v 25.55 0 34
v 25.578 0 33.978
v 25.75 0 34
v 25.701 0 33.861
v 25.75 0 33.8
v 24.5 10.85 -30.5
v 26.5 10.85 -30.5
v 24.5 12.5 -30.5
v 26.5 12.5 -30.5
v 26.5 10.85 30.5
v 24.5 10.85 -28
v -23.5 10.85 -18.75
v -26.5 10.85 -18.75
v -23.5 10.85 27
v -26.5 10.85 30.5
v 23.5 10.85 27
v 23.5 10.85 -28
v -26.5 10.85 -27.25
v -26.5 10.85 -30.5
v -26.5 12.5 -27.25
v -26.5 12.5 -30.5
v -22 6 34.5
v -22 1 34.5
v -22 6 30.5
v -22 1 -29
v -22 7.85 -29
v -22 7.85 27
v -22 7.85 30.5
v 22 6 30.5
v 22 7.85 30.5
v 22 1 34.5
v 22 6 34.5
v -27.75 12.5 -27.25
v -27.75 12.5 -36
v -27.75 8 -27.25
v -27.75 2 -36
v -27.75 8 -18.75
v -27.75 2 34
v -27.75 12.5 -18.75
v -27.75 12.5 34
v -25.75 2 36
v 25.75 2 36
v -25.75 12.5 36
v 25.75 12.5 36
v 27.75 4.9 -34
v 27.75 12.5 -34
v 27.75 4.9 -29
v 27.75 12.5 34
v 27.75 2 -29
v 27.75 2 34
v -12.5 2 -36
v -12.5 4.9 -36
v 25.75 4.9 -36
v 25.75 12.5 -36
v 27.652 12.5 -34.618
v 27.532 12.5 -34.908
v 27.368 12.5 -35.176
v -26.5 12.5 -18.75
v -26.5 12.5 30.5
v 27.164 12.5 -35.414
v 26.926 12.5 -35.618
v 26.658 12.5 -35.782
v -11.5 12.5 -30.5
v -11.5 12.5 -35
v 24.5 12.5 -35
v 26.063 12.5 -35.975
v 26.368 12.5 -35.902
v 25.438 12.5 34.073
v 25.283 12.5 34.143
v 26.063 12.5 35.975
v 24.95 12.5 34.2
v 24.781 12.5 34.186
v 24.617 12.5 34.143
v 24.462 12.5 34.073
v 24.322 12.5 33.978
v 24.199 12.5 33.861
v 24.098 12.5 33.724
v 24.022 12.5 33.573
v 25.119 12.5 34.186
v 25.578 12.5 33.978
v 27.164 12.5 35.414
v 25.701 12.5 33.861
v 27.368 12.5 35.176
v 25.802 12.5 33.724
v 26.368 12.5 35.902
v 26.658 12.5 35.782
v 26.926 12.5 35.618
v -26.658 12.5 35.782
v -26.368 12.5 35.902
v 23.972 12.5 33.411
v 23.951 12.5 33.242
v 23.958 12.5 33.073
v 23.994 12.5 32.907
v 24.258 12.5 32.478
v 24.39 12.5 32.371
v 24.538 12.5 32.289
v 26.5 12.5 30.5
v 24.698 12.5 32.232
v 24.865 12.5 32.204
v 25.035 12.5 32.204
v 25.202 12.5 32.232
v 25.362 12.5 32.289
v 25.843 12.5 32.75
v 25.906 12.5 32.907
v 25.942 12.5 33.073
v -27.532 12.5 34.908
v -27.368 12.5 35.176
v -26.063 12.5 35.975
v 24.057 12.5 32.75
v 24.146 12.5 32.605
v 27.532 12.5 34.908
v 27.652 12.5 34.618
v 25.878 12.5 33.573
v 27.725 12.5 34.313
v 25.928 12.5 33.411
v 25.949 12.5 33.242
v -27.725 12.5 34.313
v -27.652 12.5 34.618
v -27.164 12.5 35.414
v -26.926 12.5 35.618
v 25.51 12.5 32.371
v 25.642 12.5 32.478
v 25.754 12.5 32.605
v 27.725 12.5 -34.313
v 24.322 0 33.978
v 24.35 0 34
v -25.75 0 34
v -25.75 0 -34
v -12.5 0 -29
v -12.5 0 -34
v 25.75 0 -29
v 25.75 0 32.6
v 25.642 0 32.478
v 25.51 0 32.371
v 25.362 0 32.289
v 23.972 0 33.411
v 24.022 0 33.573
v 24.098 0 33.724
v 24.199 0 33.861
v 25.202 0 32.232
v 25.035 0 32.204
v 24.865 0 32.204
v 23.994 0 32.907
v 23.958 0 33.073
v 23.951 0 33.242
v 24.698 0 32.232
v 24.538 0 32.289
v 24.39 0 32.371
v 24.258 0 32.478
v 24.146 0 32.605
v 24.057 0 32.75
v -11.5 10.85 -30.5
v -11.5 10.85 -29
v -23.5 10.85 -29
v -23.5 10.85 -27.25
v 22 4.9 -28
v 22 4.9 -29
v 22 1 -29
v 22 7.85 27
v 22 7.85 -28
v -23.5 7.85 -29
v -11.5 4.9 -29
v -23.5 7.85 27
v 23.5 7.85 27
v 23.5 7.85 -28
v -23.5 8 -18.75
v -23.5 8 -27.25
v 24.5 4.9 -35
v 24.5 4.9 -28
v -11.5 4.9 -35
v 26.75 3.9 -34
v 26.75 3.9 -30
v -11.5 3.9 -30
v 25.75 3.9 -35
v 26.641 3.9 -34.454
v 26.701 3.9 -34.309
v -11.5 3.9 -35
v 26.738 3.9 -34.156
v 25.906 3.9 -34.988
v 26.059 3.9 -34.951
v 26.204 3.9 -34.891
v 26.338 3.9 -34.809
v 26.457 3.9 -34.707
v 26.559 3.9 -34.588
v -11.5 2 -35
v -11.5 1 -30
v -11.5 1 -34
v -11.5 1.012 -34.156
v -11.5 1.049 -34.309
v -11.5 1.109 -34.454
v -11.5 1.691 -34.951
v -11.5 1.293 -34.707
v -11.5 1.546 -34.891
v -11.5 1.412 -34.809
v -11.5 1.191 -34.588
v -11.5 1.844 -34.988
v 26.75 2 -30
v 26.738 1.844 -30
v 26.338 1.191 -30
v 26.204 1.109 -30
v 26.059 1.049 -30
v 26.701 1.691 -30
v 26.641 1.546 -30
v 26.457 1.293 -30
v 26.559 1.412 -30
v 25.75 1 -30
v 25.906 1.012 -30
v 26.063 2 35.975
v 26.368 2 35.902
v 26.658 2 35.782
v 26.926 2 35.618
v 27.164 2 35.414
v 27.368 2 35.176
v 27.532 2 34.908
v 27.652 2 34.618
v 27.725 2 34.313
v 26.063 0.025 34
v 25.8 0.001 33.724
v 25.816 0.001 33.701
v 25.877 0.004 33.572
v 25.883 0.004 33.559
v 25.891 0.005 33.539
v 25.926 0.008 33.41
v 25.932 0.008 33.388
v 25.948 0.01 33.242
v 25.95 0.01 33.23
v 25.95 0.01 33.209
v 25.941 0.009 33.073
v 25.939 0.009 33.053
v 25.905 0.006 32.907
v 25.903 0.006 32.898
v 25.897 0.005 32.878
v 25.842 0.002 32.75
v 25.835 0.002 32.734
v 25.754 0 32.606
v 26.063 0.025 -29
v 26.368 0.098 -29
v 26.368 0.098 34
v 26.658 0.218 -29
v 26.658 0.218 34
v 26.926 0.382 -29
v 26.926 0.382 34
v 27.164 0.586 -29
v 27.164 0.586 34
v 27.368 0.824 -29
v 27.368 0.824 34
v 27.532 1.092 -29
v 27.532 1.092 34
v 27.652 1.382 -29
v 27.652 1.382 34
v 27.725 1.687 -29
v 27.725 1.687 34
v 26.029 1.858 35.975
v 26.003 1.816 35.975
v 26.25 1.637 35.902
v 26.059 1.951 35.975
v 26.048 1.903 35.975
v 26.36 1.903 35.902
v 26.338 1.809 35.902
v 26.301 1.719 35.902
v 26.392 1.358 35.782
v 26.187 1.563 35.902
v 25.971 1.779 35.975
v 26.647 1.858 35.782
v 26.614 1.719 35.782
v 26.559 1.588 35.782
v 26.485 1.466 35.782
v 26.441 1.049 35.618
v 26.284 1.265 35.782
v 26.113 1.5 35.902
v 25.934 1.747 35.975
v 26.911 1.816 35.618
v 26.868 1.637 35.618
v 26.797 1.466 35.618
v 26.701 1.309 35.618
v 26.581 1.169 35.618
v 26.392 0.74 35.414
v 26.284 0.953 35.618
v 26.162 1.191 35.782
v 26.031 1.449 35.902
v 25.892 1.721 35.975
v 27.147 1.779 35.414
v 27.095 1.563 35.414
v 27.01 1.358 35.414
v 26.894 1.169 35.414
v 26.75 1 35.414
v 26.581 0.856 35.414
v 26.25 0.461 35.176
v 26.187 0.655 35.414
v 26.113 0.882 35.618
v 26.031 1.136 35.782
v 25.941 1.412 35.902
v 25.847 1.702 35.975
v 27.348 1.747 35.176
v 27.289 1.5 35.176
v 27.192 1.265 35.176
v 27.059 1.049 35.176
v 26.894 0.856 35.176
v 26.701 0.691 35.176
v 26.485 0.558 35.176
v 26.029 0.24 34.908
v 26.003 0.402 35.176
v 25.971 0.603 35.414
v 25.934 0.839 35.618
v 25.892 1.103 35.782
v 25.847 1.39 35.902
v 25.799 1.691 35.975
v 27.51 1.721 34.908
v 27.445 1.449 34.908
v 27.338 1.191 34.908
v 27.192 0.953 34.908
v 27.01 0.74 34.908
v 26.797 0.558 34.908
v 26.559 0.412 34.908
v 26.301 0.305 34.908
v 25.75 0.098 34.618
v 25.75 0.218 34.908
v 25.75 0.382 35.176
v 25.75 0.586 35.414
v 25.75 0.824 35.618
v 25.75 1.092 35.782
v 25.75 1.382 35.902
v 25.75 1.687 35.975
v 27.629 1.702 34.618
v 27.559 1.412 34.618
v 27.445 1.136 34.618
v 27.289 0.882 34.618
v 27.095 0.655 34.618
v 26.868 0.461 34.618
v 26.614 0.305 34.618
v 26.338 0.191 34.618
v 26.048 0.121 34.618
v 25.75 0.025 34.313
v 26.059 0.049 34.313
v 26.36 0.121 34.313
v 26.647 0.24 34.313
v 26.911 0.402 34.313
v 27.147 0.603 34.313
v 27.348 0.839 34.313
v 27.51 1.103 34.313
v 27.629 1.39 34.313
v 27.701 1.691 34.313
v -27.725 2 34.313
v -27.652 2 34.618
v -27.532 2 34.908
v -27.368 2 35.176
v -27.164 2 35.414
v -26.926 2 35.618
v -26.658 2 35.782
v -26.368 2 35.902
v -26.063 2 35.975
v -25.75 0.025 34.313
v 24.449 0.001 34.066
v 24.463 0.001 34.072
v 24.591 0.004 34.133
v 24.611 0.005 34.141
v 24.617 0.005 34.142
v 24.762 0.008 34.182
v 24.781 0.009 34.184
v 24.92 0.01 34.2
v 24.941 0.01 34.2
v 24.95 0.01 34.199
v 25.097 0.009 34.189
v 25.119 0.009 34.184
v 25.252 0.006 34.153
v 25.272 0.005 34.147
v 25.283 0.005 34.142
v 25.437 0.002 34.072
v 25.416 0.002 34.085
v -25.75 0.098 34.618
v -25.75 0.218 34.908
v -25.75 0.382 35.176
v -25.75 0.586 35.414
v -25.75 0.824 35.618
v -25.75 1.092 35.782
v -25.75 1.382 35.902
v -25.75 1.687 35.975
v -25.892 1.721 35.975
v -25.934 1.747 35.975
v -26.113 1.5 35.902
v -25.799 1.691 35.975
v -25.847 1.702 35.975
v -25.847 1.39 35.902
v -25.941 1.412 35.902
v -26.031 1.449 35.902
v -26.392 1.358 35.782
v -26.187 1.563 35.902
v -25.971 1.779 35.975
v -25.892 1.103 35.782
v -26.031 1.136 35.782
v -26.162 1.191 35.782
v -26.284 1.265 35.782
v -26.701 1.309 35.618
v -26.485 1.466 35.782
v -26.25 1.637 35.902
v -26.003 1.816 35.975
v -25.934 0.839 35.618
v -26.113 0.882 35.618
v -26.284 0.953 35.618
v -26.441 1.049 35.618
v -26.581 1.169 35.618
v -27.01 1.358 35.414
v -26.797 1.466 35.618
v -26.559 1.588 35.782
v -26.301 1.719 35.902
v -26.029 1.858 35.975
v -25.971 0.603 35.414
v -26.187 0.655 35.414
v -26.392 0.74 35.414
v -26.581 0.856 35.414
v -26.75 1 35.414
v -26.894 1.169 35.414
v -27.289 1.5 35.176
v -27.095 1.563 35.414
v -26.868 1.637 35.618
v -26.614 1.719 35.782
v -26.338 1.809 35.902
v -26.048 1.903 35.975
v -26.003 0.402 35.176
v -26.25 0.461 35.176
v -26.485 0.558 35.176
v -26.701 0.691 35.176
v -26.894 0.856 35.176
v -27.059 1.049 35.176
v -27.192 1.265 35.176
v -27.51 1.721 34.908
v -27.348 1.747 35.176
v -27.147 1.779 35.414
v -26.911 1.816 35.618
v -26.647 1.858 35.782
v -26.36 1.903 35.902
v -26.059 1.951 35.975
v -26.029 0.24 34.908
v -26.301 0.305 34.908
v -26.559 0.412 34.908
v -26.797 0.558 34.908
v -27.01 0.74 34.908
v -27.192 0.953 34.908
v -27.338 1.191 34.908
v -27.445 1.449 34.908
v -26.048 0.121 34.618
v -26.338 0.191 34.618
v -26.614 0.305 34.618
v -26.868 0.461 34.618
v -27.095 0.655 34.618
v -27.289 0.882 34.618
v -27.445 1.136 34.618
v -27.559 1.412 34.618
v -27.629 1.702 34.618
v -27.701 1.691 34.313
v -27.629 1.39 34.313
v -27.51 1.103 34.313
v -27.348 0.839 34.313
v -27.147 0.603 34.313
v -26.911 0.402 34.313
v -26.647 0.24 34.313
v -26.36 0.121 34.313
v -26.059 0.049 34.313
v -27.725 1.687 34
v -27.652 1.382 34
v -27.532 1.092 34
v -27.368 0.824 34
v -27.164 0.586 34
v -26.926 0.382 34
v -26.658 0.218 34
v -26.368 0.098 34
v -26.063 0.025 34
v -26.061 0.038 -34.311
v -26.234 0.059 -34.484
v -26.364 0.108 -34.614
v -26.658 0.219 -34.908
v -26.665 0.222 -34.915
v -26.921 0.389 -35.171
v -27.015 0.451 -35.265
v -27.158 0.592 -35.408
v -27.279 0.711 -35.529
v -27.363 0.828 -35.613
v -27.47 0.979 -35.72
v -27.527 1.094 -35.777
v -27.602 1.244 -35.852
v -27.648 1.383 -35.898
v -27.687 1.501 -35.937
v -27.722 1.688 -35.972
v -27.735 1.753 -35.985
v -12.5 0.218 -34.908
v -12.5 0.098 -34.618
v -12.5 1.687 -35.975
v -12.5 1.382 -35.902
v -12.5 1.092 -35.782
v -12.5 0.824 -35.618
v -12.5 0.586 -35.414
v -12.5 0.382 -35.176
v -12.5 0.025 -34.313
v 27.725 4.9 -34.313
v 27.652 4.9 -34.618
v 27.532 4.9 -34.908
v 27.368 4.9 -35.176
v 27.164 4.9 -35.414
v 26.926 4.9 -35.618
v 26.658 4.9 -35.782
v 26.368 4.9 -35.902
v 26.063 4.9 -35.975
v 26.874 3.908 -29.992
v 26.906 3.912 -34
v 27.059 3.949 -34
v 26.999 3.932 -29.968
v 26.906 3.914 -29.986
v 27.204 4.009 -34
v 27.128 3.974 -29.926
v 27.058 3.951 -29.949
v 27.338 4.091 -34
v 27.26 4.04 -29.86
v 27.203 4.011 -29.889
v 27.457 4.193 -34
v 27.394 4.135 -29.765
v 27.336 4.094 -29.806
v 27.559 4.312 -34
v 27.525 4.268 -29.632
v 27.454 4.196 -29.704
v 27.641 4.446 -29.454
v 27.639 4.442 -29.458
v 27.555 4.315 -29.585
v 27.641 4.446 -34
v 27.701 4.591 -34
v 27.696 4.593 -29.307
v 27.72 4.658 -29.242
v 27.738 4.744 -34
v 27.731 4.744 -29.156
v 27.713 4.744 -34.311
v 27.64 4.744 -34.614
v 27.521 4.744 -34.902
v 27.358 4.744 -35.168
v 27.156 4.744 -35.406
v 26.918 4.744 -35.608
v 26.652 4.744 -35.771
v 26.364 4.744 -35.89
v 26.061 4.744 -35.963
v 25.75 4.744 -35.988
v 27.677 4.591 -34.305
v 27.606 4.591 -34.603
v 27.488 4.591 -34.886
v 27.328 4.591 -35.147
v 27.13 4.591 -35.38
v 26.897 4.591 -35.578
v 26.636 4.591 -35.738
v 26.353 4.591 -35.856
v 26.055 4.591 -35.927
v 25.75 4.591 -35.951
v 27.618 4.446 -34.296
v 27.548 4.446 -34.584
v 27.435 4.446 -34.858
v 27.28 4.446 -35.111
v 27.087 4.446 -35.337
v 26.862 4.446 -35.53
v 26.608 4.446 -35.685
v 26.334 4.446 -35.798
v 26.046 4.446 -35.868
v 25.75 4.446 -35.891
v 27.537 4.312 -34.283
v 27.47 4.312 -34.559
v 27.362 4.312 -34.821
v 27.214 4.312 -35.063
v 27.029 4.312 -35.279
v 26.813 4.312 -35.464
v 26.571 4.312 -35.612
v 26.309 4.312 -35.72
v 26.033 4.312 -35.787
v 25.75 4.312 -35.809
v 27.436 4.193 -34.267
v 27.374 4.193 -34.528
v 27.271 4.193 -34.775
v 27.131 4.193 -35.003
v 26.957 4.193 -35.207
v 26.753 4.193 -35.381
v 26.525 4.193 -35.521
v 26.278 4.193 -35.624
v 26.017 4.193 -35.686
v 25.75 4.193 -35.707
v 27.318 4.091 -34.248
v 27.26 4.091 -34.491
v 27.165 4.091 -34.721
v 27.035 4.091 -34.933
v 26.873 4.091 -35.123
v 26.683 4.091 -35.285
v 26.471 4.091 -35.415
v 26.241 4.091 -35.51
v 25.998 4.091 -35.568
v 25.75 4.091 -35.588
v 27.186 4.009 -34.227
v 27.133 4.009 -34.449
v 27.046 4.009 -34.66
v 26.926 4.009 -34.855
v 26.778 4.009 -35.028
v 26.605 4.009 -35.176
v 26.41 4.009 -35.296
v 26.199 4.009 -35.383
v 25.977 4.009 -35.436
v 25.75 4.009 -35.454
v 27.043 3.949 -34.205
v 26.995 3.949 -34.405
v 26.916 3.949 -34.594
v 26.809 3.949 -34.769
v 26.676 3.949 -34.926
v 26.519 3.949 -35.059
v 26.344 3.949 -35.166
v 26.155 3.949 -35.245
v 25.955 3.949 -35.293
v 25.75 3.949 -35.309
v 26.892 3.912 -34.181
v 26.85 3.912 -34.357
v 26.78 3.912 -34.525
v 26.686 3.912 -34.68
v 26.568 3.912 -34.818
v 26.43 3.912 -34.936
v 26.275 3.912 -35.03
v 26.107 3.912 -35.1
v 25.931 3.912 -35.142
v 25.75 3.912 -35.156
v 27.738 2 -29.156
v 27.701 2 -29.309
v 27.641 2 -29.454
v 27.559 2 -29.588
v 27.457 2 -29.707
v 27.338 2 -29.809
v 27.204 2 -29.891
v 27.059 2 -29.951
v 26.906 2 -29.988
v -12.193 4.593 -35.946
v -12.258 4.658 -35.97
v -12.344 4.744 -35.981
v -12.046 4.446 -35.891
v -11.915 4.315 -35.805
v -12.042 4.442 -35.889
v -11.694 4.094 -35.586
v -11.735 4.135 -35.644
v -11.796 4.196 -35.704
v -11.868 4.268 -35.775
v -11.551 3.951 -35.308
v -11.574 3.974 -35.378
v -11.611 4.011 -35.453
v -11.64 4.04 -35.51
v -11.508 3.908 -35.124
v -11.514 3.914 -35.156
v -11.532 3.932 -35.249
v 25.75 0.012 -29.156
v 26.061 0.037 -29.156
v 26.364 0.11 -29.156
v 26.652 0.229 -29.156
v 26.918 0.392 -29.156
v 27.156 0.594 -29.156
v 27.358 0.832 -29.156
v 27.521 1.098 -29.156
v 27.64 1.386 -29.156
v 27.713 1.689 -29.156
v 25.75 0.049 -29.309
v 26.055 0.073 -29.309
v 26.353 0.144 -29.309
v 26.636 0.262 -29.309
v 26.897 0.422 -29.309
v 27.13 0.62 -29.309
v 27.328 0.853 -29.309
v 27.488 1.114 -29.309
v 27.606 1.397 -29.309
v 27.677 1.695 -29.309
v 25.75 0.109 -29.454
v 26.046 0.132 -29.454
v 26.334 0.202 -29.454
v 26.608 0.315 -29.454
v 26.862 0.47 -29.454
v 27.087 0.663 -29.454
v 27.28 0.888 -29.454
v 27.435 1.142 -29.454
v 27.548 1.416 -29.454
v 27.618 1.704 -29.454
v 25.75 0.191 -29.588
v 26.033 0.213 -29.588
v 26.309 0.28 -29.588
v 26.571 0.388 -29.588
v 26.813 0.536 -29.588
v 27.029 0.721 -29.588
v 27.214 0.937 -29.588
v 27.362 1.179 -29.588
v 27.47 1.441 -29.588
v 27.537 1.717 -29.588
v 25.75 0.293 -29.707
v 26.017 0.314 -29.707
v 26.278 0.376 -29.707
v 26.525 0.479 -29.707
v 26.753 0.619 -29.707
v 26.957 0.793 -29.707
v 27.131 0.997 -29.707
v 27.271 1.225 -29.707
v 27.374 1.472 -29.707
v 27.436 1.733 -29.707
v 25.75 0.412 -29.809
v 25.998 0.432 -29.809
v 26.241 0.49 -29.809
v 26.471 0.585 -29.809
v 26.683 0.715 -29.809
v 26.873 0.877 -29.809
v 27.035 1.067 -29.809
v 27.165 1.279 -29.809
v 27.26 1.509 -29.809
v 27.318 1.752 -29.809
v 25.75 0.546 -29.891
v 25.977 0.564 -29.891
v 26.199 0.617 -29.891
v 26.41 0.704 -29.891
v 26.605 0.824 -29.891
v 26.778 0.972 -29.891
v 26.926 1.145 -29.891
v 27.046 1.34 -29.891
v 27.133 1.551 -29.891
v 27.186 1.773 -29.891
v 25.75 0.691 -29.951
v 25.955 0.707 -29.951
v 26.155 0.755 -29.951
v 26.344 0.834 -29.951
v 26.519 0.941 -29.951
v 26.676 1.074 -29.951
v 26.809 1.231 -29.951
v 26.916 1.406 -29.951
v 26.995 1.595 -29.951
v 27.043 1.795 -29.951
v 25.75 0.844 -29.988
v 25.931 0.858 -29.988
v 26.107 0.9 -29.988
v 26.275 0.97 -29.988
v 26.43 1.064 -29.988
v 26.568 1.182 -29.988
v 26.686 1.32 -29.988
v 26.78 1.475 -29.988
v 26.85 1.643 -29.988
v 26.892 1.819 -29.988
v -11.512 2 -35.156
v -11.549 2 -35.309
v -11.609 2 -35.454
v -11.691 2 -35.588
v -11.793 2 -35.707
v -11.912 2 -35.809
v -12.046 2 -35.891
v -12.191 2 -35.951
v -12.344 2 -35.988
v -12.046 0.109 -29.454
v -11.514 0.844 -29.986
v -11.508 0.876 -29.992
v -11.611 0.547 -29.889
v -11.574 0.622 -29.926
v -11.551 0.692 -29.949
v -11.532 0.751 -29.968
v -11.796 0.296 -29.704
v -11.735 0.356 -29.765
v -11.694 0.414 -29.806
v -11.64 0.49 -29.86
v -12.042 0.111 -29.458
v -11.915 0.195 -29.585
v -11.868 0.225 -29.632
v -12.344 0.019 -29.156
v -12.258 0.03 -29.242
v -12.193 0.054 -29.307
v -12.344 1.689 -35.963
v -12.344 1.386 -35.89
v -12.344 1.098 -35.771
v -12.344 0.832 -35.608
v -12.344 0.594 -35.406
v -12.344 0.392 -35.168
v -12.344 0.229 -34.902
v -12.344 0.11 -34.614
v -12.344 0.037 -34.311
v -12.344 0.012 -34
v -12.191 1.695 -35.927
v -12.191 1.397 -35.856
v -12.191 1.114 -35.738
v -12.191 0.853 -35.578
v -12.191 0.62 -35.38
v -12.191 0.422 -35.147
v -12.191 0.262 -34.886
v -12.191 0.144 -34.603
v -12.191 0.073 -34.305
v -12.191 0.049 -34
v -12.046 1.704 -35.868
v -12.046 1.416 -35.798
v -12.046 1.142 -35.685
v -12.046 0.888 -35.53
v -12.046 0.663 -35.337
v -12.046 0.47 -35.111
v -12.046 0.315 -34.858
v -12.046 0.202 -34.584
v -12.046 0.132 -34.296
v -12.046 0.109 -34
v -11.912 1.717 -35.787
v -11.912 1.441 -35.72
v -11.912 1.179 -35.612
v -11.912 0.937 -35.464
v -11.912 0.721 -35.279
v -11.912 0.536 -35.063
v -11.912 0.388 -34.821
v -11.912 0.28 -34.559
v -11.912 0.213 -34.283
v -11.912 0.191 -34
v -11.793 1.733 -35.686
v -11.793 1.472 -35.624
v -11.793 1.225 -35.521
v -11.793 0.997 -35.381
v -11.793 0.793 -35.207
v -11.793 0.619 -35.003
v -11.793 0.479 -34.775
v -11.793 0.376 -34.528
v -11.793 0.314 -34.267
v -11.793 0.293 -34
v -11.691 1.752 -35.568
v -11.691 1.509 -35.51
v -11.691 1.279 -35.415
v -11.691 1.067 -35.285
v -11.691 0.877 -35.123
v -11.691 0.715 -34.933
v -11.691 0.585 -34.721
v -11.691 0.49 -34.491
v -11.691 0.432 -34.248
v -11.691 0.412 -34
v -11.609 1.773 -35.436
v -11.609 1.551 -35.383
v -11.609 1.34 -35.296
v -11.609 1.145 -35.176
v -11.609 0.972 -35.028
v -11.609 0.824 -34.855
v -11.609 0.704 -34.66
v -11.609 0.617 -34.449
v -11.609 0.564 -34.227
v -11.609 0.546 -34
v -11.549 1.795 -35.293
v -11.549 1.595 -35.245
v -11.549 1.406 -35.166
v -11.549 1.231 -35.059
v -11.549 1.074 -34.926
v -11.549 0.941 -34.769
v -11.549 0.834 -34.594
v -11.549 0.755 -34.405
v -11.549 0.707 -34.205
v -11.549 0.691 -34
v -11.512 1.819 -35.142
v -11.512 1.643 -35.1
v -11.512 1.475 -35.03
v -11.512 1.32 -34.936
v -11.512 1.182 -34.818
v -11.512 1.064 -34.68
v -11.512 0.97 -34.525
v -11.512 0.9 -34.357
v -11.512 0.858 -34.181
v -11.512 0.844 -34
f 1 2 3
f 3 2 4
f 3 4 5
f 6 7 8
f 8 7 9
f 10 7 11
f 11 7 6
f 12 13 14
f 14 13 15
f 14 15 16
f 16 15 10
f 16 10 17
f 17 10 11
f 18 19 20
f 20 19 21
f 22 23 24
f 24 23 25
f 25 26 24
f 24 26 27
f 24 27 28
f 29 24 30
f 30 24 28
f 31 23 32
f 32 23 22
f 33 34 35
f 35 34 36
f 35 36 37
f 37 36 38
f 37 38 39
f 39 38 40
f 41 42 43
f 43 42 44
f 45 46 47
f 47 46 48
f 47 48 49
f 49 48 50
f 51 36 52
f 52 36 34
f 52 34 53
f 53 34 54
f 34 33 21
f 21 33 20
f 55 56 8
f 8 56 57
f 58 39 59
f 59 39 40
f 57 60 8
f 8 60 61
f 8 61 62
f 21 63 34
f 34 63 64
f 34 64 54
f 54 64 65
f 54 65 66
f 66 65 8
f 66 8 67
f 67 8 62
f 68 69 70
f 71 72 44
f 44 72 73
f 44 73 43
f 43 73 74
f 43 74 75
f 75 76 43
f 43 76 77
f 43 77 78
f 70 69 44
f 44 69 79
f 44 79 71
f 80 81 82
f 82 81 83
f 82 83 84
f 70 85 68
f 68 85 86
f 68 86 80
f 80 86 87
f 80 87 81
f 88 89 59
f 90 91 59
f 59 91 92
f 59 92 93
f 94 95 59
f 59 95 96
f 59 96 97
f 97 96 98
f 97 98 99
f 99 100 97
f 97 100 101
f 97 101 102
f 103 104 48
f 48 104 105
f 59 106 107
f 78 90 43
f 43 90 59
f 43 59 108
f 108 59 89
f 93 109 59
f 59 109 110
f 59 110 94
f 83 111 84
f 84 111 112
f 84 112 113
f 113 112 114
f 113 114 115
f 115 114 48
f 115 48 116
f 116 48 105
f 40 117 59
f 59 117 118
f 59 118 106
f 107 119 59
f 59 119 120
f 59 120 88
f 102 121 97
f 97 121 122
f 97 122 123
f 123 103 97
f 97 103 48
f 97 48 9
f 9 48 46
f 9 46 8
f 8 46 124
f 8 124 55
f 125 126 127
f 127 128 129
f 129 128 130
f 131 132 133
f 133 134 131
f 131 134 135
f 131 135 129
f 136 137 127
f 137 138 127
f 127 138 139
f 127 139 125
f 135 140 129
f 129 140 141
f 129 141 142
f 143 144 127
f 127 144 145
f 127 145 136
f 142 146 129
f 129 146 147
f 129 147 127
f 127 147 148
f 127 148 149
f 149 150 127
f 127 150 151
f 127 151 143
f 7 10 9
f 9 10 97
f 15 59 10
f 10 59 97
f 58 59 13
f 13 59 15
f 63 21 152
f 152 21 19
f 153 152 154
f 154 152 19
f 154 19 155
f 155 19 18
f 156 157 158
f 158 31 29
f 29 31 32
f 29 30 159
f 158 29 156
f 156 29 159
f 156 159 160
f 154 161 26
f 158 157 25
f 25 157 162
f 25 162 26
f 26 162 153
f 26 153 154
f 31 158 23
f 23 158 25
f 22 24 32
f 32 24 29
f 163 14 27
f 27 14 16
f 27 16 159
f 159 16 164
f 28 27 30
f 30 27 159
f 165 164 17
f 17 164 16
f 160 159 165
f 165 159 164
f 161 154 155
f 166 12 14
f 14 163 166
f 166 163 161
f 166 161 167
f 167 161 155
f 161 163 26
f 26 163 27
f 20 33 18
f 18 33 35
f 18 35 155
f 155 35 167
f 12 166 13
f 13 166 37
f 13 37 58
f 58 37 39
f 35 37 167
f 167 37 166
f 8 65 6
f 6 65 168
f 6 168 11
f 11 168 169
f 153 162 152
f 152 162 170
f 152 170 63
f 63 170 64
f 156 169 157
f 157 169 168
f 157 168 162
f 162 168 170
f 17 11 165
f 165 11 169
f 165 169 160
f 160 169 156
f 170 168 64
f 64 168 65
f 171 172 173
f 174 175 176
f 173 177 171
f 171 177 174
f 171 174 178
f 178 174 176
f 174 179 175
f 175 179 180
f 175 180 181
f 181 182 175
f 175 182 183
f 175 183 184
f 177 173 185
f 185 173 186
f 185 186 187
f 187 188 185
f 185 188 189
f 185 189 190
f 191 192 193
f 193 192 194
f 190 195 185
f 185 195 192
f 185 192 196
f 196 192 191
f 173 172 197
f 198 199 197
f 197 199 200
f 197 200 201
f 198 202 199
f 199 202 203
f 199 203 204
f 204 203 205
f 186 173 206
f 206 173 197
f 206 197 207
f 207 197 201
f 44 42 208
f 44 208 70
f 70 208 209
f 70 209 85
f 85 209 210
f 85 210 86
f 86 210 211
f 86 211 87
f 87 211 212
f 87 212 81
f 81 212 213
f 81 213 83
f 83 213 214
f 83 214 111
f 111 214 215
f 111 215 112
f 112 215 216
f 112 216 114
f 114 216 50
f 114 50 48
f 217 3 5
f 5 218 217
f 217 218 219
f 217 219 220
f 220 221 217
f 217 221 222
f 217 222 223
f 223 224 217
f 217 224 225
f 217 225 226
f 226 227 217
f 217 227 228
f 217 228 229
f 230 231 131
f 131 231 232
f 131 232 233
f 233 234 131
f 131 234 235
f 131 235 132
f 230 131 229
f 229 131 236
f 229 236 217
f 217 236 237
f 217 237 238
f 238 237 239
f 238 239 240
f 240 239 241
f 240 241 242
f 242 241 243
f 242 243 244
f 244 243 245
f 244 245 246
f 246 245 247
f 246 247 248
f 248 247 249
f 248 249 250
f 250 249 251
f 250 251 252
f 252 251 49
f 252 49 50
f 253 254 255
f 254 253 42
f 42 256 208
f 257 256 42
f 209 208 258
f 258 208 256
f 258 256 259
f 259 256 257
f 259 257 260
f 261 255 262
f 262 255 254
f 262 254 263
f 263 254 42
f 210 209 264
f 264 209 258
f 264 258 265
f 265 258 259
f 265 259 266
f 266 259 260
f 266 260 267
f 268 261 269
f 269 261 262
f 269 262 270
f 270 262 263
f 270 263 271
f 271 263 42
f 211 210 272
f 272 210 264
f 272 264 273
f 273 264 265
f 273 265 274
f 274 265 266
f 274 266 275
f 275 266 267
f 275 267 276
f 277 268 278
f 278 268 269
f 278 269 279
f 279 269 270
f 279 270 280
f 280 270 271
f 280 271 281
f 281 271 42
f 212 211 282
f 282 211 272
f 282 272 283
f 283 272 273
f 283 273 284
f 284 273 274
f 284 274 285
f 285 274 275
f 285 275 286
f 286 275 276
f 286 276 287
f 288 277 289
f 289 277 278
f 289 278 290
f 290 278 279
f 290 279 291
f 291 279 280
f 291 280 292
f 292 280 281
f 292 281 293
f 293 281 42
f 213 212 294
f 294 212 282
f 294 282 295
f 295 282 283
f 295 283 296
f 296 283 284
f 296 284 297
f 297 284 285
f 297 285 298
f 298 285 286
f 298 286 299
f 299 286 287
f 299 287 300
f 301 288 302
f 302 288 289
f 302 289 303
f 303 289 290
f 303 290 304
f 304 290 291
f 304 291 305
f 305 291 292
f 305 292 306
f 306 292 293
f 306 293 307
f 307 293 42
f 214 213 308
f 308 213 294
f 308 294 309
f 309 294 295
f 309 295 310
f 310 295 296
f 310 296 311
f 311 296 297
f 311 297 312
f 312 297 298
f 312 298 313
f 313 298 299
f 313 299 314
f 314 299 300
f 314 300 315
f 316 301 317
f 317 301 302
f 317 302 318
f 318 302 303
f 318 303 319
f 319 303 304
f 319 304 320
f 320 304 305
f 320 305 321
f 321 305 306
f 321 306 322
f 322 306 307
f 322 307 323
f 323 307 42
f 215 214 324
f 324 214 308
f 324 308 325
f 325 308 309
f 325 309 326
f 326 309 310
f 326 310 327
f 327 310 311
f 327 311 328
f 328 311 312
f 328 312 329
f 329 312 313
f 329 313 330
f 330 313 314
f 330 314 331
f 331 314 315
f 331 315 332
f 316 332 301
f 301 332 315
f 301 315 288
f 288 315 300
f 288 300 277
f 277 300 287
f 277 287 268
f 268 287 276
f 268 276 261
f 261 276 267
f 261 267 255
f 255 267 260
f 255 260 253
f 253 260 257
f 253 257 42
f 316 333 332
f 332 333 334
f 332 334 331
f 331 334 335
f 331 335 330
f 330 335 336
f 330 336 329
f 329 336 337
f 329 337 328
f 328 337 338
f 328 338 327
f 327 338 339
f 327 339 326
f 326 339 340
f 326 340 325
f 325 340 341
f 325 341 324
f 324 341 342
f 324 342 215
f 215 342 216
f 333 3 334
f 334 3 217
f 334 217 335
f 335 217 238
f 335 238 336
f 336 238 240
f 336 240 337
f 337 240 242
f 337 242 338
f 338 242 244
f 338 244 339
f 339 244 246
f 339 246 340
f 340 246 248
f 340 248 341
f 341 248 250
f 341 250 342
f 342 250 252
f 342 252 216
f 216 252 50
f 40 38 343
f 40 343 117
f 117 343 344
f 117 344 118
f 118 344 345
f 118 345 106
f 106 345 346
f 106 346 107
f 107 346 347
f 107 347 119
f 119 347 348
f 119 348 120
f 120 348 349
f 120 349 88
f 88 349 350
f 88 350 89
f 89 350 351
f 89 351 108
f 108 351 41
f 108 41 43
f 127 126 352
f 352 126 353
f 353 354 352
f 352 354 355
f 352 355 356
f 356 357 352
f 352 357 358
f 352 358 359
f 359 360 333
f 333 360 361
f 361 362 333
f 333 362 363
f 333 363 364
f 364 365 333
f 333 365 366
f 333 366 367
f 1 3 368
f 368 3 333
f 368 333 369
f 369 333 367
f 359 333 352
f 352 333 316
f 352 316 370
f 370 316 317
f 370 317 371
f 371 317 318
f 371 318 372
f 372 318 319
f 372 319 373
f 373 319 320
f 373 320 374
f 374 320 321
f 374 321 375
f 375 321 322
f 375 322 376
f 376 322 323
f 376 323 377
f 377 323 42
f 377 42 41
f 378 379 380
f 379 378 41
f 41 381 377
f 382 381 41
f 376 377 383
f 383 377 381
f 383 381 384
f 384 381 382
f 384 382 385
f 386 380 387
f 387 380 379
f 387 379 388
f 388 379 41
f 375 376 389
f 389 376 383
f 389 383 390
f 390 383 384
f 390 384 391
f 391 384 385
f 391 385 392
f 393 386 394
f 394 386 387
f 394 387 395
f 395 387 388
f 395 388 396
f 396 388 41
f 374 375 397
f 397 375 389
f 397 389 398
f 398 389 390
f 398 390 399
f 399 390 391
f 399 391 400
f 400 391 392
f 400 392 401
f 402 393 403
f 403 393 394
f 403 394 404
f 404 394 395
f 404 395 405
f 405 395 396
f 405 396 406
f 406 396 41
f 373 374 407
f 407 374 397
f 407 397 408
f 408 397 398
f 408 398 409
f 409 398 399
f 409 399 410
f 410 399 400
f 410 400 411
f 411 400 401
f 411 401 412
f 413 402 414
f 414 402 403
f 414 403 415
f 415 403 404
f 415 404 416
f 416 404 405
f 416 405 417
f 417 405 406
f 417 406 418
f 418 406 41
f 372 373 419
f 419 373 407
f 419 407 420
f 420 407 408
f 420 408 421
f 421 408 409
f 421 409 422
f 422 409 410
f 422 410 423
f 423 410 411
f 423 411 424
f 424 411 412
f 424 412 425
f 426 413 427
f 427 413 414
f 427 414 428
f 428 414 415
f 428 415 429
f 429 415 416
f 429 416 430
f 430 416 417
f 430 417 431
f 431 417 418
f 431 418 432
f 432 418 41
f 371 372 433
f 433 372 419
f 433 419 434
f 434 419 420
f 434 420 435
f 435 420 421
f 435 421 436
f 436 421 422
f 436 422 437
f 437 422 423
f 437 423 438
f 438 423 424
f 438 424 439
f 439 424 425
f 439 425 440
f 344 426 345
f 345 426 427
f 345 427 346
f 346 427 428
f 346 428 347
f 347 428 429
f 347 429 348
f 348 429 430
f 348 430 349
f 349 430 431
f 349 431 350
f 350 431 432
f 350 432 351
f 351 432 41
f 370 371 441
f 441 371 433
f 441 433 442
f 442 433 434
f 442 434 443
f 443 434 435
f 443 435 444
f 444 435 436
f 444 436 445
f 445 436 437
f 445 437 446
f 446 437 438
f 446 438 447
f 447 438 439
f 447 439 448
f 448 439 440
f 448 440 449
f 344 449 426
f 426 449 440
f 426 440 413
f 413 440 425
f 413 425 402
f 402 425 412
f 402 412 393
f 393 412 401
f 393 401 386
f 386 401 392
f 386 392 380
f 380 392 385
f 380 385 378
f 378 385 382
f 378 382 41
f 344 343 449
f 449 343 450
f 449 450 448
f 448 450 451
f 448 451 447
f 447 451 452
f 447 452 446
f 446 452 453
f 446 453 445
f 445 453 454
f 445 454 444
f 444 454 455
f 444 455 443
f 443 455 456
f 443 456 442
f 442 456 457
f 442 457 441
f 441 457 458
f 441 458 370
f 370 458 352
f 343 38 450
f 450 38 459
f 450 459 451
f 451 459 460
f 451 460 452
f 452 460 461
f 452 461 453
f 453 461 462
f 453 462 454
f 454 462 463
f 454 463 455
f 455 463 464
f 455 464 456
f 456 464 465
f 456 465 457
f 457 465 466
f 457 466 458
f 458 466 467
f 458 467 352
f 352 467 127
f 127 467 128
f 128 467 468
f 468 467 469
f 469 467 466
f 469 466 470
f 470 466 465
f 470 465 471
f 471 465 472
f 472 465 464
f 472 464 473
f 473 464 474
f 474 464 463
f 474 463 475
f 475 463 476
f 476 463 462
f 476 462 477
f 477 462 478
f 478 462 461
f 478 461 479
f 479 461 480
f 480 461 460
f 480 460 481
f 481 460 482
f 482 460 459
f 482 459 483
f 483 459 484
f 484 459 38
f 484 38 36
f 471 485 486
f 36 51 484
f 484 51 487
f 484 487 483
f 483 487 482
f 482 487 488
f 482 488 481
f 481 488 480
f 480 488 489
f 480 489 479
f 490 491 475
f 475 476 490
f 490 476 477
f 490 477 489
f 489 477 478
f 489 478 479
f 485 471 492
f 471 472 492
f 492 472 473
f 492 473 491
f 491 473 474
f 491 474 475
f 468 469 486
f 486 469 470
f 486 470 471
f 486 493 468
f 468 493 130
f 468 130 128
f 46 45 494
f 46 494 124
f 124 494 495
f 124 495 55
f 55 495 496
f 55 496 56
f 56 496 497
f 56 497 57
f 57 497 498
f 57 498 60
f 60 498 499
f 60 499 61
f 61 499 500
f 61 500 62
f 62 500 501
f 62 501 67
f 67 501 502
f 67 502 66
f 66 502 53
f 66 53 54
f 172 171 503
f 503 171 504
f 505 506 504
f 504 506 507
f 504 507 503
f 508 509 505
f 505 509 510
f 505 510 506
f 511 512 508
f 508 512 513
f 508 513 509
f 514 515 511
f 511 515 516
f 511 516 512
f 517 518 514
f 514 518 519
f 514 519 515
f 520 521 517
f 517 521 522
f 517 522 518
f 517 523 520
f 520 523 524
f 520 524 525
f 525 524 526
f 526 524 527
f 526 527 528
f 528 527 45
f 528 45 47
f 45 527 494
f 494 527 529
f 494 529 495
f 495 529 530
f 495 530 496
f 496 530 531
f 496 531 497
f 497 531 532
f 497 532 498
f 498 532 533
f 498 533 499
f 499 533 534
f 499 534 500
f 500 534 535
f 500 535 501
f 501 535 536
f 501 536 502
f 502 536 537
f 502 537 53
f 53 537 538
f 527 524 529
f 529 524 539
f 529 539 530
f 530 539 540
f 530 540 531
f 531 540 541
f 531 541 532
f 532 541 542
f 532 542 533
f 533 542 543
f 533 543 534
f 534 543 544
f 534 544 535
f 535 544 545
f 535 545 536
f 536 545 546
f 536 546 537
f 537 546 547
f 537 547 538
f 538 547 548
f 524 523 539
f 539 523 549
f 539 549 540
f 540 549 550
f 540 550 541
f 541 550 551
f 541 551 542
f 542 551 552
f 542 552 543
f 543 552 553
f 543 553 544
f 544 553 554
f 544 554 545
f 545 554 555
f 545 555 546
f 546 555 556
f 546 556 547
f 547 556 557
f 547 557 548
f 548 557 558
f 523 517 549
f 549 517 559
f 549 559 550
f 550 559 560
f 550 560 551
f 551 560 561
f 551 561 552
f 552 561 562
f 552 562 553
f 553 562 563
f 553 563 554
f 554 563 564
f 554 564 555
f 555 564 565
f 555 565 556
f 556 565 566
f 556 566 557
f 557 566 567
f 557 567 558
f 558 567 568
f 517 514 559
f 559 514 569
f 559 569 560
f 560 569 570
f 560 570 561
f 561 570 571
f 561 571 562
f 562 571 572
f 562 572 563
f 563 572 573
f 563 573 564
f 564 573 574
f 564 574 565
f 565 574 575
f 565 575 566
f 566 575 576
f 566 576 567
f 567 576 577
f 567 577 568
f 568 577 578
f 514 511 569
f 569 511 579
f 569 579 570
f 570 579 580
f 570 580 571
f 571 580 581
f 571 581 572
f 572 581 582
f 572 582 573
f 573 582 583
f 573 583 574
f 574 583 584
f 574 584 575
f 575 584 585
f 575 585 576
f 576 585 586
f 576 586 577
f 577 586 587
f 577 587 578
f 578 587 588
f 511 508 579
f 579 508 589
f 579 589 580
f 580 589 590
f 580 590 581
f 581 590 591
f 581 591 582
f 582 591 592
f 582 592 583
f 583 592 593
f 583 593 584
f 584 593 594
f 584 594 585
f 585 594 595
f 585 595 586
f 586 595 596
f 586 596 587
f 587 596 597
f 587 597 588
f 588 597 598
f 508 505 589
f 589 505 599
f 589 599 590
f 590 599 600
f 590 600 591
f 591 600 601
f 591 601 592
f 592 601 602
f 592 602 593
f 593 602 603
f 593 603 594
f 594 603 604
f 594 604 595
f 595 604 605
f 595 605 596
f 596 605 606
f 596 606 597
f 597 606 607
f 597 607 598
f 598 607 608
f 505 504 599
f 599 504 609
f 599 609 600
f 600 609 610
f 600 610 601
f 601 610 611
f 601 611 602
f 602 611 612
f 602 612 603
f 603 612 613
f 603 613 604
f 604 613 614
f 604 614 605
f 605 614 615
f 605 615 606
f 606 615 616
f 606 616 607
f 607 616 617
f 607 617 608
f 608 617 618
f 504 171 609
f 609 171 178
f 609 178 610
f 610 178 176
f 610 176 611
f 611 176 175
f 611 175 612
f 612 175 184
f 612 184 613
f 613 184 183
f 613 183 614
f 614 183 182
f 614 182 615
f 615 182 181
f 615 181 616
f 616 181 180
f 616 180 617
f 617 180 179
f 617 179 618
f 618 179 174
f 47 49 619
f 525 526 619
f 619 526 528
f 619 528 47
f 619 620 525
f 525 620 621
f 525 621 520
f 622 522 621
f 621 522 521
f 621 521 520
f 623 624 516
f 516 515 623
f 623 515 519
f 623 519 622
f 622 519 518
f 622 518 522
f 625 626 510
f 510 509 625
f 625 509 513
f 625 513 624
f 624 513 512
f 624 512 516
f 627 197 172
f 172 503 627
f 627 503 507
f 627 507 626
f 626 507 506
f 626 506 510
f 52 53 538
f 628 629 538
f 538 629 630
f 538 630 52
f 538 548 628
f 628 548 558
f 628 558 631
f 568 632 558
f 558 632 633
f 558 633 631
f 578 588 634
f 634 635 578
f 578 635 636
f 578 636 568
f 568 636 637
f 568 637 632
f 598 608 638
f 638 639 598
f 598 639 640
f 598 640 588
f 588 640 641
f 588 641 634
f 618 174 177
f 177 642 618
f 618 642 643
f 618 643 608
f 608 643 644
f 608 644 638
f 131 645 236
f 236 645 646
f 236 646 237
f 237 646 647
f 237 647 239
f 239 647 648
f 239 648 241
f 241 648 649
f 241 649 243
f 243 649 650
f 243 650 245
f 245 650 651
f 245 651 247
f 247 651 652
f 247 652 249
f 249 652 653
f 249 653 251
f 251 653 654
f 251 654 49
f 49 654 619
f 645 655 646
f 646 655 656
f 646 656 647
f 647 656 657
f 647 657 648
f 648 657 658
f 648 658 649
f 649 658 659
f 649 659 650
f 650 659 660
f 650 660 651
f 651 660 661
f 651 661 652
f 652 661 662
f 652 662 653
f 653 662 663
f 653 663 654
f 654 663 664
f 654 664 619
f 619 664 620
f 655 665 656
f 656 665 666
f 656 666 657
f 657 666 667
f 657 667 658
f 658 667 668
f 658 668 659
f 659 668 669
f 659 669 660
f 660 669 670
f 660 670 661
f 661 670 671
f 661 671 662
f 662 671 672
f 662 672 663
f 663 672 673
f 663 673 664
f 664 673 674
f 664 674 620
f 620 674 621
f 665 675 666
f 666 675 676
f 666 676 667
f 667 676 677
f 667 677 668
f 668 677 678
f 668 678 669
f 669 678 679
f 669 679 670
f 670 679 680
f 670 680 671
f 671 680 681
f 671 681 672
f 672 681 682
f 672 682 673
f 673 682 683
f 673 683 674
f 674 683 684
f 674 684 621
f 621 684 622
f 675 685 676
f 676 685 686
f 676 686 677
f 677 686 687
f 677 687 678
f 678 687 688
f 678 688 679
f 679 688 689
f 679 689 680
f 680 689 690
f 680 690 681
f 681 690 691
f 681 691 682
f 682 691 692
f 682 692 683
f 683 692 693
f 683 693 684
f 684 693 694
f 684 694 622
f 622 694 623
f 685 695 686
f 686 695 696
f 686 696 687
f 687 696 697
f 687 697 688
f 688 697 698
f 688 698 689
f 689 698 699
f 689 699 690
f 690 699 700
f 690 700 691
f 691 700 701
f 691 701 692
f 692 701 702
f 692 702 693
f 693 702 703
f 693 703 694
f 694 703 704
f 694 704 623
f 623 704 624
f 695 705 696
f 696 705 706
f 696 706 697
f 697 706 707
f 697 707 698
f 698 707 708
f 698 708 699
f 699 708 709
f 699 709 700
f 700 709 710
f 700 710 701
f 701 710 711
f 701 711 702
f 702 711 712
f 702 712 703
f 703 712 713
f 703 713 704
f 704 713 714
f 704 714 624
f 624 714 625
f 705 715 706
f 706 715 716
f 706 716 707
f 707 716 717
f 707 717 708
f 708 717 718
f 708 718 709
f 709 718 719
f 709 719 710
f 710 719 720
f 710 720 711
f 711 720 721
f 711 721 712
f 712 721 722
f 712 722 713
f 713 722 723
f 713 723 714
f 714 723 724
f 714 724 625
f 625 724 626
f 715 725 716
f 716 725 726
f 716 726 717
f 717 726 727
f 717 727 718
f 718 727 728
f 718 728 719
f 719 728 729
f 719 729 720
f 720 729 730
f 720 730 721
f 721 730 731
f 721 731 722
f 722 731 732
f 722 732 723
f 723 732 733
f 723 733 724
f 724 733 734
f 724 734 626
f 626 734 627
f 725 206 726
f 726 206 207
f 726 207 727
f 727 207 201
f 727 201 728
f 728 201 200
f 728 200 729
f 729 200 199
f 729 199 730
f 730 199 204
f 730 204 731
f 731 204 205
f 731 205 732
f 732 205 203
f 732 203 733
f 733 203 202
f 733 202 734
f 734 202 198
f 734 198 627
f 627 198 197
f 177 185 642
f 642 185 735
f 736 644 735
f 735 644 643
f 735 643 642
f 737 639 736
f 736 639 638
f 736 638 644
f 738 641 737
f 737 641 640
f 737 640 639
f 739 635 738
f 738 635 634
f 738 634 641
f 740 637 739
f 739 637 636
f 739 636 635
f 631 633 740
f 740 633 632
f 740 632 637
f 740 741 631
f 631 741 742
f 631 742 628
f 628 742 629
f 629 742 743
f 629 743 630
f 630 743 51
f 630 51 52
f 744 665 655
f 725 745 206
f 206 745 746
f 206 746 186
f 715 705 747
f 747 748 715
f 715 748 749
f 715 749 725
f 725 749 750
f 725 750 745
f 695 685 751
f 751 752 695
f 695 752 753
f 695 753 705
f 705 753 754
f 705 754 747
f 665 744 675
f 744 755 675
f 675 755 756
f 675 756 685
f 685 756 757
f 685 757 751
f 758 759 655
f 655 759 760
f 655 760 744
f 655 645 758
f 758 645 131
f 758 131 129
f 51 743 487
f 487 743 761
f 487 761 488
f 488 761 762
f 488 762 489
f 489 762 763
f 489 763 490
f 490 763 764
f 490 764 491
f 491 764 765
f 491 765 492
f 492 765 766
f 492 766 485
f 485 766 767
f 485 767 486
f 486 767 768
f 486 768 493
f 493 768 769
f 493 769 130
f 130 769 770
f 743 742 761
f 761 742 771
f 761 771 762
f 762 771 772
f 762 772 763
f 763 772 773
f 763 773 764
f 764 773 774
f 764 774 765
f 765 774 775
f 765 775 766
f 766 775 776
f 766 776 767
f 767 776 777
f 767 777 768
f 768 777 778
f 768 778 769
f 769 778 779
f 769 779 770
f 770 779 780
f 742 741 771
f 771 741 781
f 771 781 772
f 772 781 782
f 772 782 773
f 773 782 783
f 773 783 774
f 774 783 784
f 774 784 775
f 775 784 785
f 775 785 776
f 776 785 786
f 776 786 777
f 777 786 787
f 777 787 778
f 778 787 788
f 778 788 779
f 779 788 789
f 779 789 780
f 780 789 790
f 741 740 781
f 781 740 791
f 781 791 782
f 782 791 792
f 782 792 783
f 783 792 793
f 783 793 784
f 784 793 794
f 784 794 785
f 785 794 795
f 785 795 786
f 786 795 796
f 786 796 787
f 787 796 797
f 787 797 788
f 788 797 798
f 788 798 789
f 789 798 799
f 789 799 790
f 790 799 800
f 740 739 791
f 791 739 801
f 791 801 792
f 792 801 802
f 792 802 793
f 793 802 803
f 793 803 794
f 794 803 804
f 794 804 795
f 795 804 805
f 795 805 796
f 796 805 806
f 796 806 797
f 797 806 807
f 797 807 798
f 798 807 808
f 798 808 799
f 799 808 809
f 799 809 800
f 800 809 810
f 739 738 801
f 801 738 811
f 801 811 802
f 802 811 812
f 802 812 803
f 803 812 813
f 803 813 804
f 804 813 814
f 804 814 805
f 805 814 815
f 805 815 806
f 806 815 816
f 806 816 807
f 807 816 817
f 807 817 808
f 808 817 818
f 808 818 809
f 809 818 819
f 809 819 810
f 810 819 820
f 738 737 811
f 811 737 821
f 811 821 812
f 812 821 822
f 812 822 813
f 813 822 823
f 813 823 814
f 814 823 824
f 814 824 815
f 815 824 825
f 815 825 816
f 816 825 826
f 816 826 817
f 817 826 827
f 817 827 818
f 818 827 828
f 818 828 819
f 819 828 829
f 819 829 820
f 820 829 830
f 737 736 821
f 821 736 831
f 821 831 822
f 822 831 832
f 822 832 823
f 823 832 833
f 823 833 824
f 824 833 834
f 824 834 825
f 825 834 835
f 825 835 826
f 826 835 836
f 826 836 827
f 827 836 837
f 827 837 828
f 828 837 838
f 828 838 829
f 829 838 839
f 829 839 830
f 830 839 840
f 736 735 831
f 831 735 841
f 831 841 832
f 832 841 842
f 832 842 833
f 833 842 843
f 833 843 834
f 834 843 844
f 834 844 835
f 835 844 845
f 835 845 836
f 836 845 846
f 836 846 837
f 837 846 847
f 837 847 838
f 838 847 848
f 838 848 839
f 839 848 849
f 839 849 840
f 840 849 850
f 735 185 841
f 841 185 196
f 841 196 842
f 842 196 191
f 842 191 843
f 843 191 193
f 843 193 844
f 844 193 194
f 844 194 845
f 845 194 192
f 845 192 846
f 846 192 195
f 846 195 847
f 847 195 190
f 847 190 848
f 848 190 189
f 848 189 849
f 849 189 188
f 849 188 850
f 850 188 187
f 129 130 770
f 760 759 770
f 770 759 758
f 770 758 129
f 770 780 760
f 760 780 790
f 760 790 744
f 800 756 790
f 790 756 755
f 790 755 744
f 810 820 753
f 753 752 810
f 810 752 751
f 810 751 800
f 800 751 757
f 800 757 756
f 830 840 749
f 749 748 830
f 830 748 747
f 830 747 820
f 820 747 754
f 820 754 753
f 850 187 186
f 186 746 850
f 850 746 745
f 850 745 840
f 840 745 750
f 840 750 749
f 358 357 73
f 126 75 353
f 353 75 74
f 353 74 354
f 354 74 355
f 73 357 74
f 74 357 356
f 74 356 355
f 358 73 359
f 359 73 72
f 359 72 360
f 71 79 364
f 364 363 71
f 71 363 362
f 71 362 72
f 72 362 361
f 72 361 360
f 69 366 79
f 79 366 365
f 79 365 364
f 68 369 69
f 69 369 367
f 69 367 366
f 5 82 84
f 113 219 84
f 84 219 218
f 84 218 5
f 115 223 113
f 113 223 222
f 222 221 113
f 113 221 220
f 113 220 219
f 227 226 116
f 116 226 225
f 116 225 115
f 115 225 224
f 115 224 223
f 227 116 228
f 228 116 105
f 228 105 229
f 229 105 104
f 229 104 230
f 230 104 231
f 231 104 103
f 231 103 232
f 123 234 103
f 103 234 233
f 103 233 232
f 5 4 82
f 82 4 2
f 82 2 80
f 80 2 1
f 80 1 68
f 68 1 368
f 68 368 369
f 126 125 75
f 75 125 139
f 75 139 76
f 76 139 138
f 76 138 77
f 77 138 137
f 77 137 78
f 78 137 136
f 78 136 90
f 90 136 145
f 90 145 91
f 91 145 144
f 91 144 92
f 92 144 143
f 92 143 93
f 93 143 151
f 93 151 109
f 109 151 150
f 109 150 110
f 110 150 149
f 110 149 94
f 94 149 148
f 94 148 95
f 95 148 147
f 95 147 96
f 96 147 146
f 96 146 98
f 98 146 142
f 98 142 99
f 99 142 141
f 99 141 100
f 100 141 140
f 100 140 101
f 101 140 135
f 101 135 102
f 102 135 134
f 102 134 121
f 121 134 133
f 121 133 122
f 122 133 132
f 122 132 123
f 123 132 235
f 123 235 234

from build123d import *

# Parameters (mm, degrees)
SKETCH1_W           = 55.5
SKETCH1_H           = 72
BOSS_EXTRUDE1_DEPTH = 12.5
SKETCH2_W           = 53
SKETCH2_H           = 61
CUT_EXTRUDE1_DEPTH  = 1.65
SKETCH3_W           = 44
SKETCH3_H           = 63.5
CUT_EXTRUDE2_DEPTH  = 11.5
SKETCH4_W           = 44
SKETCH4_H           = 4
BOSS_EXTRUDE2_DEPTH = 6.5
SKETCH5_W           = 44
SKETCH5_H           = 3.5
BOSS_EXTRUDE3_DEPTH = 3
SKETCH6_W           = 1.5
SKETCH6_H           = 56
CUT_EXTRUDE3_DEPTH  = 3
SKETCH7_W           = 7
SKETCH7_H           = 8.5
CUT_EXTRUDE4_DEPTH  = 4.5
SKETCH8_W           = 36
SKETCH8_H           = 7
CUT_EXTRUDE5_DEPTH  = 7.6
SKETCH9_W           = 39.25
SKETCH9_H           = 3.9
CUT_EXTRUDE6_DEPTH  = 6
FILLET2_R           = 2
FILLET3_R           = 1
SKETCH10_R          = 1
CUT_EXTRUDE7_DEPTH  = 48.14140961


with BuildPart() as part:
    # Sketch1 → Boss-Extrude1 (new body)
    with BuildSketch(Plane(origin=(0, 0, 0), x_dir=(1, 0, 0), z_dir=(0, 1, 0))):
        Rectangle(SKETCH1_W, SKETCH1_H)
    extrude(amount=BOSS_EXTRUDE1_DEPTH)

    # Sketch2 → Cut-Extrude1 (cut)
    with BuildSketch(Plane(origin=(0, 12.5, 0), x_dir=(1, 0, 0), z_dir=(0, 1, 0))):
        Rectangle(SKETCH2_W, SKETCH2_H)
    extrude(amount=-CUT_EXTRUDE1_DEPTH, mode=Mode.SUBTRACT)

    # Sketch3 → Cut-Extrude2 (cut)
    with BuildSketch(Plane(origin=(0, 12.5, 0), x_dir=(1, 0, 0), z_dir=(0, 1, 0))):
        with Locations((0, -2.75)):
            Rectangle(SKETCH3_W, SKETCH3_H)
    extrude(amount=-CUT_EXTRUDE2_DEPTH, mode=Mode.SUBTRACT)

    # Sketch4 → Boss-Extrude2 (add)
    with BuildSketch(Plane(origin=(0, 12.5, 0), x_dir=(1, 0, 0), z_dir=(0, 1, 0))):
        with Locations((0, -32.5)):
            Rectangle(SKETCH4_W, SKETCH4_H)
    extrude(amount=-BOSS_EXTRUDE2_DEPTH)

    # Sketch5 → Boss-Extrude3 (add)
    with BuildSketch(Plane(origin=(0, 10.85, 0), x_dir=(1, 0, 0), z_dir=(0, 1, 0))):
        with Locations((0, -28.75)):
            Rectangle(SKETCH5_W, SKETCH5_H)
    extrude(amount=-BOSS_EXTRUDE3_DEPTH)

    # Sketch6 → Cut-Extrude3 (cut)
    with BuildSketch(Plane(origin=(0, 10.85, 0), x_dir=(1, 0, 0), z_dir=(0, 1, 0))):
        with Locations((22.75, 1)):
            Rectangle(SKETCH6_W, SKETCH6_H)
        with Locations((-22.75, 1)):
            Rectangle(SKETCH6_W, SKETCH6_H)
    extrude(amount=-CUT_EXTRUDE3_DEPTH, mode=Mode.SUBTRACT)

    # Sketch7 → Cut-Extrude4 (cut)
    with BuildSketch(Plane(origin=(0, 12.5, 0), x_dir=(1, 0, 0), z_dir=(0, 1, 0))):
        with Locations((-24.25, 23)):
            Rectangle(SKETCH7_W, SKETCH7_H)
    extrude(amount=-CUT_EXTRUDE4_DEPTH, mode=Mode.SUBTRACT)

    # Sketch8 → Cut-Extrude5 (cut)
    with BuildSketch(Plane(origin=(0, 12.5, 0), x_dir=(1, 0, 0), z_dir=(0, 1, 0))):
        with Locations((6.5, 31.5)):
            Rectangle(SKETCH8_W, SKETCH8_H)
    extrude(amount=-CUT_EXTRUDE5_DEPTH, mode=Mode.SUBTRACT)

    # Sketch9 → Cut-Extrude6 (cut)
    with BuildSketch(Plane(origin=(0, 0, -36), x_dir=(-1, 0, 0), z_dir=(0, 0, -1))):
        with Locations((-8.125, 1.95)):
            Rectangle(SKETCH9_W, SKETCH9_H)
    extrude(amount=-CUT_EXTRUDE6_DEPTH, mode=Mode.SUBTRACT)

    # Fillet2
    fillet2_edges = [part.edges().sort_by_distance(p)[0] for p in [
        (-19.625, 0, -36),
        (27.75, 0, 3),
        (0, 0, 36),
        (-27.75, 0, 0),
        (27.75, 8.2, -36),
        (27.75, 6.25, 36),
        (-27.75, 6.25, 36),
    ]]
    fillet(fillet2_edges, radius=FILLET2_R)

    # Fillet3
    fillet3_edges = [part.edges().sort_by_distance(p)[0] for p in [
        (27.75, 2.95, -30),
        (27.75, 3.9, -32),
        (-11.5, 0, -32),
        (7.125, 3.9, -36),
        (-11.5, 2.95, -36),
        (7.125, 0, -30),
        (-11.5, 0.585786438, -35.414213562),
        (27.164213562, 0.585786438, -30),
        (27.164213562, 3.9, -35.414213562),
    ]]
    fillet(fillet3_edges, radius=FILLET3_R)

    # Sketch10 → Cut-Extrude7 (cut, through all)
    with BuildSketch(Plane(origin=(0, 12.5, 0), x_dir=(1, 0, 0), z_dir=(0, 1, 0))):
        with Locations(Location((24.95, -33.2, 0), (0, 0, 270))):
            Circle(SKETCH10_R)
    extrude(amount=-CUT_EXTRUDE7_DEPTH, mode=Mode.SUBTRACT)


solid = part.part
